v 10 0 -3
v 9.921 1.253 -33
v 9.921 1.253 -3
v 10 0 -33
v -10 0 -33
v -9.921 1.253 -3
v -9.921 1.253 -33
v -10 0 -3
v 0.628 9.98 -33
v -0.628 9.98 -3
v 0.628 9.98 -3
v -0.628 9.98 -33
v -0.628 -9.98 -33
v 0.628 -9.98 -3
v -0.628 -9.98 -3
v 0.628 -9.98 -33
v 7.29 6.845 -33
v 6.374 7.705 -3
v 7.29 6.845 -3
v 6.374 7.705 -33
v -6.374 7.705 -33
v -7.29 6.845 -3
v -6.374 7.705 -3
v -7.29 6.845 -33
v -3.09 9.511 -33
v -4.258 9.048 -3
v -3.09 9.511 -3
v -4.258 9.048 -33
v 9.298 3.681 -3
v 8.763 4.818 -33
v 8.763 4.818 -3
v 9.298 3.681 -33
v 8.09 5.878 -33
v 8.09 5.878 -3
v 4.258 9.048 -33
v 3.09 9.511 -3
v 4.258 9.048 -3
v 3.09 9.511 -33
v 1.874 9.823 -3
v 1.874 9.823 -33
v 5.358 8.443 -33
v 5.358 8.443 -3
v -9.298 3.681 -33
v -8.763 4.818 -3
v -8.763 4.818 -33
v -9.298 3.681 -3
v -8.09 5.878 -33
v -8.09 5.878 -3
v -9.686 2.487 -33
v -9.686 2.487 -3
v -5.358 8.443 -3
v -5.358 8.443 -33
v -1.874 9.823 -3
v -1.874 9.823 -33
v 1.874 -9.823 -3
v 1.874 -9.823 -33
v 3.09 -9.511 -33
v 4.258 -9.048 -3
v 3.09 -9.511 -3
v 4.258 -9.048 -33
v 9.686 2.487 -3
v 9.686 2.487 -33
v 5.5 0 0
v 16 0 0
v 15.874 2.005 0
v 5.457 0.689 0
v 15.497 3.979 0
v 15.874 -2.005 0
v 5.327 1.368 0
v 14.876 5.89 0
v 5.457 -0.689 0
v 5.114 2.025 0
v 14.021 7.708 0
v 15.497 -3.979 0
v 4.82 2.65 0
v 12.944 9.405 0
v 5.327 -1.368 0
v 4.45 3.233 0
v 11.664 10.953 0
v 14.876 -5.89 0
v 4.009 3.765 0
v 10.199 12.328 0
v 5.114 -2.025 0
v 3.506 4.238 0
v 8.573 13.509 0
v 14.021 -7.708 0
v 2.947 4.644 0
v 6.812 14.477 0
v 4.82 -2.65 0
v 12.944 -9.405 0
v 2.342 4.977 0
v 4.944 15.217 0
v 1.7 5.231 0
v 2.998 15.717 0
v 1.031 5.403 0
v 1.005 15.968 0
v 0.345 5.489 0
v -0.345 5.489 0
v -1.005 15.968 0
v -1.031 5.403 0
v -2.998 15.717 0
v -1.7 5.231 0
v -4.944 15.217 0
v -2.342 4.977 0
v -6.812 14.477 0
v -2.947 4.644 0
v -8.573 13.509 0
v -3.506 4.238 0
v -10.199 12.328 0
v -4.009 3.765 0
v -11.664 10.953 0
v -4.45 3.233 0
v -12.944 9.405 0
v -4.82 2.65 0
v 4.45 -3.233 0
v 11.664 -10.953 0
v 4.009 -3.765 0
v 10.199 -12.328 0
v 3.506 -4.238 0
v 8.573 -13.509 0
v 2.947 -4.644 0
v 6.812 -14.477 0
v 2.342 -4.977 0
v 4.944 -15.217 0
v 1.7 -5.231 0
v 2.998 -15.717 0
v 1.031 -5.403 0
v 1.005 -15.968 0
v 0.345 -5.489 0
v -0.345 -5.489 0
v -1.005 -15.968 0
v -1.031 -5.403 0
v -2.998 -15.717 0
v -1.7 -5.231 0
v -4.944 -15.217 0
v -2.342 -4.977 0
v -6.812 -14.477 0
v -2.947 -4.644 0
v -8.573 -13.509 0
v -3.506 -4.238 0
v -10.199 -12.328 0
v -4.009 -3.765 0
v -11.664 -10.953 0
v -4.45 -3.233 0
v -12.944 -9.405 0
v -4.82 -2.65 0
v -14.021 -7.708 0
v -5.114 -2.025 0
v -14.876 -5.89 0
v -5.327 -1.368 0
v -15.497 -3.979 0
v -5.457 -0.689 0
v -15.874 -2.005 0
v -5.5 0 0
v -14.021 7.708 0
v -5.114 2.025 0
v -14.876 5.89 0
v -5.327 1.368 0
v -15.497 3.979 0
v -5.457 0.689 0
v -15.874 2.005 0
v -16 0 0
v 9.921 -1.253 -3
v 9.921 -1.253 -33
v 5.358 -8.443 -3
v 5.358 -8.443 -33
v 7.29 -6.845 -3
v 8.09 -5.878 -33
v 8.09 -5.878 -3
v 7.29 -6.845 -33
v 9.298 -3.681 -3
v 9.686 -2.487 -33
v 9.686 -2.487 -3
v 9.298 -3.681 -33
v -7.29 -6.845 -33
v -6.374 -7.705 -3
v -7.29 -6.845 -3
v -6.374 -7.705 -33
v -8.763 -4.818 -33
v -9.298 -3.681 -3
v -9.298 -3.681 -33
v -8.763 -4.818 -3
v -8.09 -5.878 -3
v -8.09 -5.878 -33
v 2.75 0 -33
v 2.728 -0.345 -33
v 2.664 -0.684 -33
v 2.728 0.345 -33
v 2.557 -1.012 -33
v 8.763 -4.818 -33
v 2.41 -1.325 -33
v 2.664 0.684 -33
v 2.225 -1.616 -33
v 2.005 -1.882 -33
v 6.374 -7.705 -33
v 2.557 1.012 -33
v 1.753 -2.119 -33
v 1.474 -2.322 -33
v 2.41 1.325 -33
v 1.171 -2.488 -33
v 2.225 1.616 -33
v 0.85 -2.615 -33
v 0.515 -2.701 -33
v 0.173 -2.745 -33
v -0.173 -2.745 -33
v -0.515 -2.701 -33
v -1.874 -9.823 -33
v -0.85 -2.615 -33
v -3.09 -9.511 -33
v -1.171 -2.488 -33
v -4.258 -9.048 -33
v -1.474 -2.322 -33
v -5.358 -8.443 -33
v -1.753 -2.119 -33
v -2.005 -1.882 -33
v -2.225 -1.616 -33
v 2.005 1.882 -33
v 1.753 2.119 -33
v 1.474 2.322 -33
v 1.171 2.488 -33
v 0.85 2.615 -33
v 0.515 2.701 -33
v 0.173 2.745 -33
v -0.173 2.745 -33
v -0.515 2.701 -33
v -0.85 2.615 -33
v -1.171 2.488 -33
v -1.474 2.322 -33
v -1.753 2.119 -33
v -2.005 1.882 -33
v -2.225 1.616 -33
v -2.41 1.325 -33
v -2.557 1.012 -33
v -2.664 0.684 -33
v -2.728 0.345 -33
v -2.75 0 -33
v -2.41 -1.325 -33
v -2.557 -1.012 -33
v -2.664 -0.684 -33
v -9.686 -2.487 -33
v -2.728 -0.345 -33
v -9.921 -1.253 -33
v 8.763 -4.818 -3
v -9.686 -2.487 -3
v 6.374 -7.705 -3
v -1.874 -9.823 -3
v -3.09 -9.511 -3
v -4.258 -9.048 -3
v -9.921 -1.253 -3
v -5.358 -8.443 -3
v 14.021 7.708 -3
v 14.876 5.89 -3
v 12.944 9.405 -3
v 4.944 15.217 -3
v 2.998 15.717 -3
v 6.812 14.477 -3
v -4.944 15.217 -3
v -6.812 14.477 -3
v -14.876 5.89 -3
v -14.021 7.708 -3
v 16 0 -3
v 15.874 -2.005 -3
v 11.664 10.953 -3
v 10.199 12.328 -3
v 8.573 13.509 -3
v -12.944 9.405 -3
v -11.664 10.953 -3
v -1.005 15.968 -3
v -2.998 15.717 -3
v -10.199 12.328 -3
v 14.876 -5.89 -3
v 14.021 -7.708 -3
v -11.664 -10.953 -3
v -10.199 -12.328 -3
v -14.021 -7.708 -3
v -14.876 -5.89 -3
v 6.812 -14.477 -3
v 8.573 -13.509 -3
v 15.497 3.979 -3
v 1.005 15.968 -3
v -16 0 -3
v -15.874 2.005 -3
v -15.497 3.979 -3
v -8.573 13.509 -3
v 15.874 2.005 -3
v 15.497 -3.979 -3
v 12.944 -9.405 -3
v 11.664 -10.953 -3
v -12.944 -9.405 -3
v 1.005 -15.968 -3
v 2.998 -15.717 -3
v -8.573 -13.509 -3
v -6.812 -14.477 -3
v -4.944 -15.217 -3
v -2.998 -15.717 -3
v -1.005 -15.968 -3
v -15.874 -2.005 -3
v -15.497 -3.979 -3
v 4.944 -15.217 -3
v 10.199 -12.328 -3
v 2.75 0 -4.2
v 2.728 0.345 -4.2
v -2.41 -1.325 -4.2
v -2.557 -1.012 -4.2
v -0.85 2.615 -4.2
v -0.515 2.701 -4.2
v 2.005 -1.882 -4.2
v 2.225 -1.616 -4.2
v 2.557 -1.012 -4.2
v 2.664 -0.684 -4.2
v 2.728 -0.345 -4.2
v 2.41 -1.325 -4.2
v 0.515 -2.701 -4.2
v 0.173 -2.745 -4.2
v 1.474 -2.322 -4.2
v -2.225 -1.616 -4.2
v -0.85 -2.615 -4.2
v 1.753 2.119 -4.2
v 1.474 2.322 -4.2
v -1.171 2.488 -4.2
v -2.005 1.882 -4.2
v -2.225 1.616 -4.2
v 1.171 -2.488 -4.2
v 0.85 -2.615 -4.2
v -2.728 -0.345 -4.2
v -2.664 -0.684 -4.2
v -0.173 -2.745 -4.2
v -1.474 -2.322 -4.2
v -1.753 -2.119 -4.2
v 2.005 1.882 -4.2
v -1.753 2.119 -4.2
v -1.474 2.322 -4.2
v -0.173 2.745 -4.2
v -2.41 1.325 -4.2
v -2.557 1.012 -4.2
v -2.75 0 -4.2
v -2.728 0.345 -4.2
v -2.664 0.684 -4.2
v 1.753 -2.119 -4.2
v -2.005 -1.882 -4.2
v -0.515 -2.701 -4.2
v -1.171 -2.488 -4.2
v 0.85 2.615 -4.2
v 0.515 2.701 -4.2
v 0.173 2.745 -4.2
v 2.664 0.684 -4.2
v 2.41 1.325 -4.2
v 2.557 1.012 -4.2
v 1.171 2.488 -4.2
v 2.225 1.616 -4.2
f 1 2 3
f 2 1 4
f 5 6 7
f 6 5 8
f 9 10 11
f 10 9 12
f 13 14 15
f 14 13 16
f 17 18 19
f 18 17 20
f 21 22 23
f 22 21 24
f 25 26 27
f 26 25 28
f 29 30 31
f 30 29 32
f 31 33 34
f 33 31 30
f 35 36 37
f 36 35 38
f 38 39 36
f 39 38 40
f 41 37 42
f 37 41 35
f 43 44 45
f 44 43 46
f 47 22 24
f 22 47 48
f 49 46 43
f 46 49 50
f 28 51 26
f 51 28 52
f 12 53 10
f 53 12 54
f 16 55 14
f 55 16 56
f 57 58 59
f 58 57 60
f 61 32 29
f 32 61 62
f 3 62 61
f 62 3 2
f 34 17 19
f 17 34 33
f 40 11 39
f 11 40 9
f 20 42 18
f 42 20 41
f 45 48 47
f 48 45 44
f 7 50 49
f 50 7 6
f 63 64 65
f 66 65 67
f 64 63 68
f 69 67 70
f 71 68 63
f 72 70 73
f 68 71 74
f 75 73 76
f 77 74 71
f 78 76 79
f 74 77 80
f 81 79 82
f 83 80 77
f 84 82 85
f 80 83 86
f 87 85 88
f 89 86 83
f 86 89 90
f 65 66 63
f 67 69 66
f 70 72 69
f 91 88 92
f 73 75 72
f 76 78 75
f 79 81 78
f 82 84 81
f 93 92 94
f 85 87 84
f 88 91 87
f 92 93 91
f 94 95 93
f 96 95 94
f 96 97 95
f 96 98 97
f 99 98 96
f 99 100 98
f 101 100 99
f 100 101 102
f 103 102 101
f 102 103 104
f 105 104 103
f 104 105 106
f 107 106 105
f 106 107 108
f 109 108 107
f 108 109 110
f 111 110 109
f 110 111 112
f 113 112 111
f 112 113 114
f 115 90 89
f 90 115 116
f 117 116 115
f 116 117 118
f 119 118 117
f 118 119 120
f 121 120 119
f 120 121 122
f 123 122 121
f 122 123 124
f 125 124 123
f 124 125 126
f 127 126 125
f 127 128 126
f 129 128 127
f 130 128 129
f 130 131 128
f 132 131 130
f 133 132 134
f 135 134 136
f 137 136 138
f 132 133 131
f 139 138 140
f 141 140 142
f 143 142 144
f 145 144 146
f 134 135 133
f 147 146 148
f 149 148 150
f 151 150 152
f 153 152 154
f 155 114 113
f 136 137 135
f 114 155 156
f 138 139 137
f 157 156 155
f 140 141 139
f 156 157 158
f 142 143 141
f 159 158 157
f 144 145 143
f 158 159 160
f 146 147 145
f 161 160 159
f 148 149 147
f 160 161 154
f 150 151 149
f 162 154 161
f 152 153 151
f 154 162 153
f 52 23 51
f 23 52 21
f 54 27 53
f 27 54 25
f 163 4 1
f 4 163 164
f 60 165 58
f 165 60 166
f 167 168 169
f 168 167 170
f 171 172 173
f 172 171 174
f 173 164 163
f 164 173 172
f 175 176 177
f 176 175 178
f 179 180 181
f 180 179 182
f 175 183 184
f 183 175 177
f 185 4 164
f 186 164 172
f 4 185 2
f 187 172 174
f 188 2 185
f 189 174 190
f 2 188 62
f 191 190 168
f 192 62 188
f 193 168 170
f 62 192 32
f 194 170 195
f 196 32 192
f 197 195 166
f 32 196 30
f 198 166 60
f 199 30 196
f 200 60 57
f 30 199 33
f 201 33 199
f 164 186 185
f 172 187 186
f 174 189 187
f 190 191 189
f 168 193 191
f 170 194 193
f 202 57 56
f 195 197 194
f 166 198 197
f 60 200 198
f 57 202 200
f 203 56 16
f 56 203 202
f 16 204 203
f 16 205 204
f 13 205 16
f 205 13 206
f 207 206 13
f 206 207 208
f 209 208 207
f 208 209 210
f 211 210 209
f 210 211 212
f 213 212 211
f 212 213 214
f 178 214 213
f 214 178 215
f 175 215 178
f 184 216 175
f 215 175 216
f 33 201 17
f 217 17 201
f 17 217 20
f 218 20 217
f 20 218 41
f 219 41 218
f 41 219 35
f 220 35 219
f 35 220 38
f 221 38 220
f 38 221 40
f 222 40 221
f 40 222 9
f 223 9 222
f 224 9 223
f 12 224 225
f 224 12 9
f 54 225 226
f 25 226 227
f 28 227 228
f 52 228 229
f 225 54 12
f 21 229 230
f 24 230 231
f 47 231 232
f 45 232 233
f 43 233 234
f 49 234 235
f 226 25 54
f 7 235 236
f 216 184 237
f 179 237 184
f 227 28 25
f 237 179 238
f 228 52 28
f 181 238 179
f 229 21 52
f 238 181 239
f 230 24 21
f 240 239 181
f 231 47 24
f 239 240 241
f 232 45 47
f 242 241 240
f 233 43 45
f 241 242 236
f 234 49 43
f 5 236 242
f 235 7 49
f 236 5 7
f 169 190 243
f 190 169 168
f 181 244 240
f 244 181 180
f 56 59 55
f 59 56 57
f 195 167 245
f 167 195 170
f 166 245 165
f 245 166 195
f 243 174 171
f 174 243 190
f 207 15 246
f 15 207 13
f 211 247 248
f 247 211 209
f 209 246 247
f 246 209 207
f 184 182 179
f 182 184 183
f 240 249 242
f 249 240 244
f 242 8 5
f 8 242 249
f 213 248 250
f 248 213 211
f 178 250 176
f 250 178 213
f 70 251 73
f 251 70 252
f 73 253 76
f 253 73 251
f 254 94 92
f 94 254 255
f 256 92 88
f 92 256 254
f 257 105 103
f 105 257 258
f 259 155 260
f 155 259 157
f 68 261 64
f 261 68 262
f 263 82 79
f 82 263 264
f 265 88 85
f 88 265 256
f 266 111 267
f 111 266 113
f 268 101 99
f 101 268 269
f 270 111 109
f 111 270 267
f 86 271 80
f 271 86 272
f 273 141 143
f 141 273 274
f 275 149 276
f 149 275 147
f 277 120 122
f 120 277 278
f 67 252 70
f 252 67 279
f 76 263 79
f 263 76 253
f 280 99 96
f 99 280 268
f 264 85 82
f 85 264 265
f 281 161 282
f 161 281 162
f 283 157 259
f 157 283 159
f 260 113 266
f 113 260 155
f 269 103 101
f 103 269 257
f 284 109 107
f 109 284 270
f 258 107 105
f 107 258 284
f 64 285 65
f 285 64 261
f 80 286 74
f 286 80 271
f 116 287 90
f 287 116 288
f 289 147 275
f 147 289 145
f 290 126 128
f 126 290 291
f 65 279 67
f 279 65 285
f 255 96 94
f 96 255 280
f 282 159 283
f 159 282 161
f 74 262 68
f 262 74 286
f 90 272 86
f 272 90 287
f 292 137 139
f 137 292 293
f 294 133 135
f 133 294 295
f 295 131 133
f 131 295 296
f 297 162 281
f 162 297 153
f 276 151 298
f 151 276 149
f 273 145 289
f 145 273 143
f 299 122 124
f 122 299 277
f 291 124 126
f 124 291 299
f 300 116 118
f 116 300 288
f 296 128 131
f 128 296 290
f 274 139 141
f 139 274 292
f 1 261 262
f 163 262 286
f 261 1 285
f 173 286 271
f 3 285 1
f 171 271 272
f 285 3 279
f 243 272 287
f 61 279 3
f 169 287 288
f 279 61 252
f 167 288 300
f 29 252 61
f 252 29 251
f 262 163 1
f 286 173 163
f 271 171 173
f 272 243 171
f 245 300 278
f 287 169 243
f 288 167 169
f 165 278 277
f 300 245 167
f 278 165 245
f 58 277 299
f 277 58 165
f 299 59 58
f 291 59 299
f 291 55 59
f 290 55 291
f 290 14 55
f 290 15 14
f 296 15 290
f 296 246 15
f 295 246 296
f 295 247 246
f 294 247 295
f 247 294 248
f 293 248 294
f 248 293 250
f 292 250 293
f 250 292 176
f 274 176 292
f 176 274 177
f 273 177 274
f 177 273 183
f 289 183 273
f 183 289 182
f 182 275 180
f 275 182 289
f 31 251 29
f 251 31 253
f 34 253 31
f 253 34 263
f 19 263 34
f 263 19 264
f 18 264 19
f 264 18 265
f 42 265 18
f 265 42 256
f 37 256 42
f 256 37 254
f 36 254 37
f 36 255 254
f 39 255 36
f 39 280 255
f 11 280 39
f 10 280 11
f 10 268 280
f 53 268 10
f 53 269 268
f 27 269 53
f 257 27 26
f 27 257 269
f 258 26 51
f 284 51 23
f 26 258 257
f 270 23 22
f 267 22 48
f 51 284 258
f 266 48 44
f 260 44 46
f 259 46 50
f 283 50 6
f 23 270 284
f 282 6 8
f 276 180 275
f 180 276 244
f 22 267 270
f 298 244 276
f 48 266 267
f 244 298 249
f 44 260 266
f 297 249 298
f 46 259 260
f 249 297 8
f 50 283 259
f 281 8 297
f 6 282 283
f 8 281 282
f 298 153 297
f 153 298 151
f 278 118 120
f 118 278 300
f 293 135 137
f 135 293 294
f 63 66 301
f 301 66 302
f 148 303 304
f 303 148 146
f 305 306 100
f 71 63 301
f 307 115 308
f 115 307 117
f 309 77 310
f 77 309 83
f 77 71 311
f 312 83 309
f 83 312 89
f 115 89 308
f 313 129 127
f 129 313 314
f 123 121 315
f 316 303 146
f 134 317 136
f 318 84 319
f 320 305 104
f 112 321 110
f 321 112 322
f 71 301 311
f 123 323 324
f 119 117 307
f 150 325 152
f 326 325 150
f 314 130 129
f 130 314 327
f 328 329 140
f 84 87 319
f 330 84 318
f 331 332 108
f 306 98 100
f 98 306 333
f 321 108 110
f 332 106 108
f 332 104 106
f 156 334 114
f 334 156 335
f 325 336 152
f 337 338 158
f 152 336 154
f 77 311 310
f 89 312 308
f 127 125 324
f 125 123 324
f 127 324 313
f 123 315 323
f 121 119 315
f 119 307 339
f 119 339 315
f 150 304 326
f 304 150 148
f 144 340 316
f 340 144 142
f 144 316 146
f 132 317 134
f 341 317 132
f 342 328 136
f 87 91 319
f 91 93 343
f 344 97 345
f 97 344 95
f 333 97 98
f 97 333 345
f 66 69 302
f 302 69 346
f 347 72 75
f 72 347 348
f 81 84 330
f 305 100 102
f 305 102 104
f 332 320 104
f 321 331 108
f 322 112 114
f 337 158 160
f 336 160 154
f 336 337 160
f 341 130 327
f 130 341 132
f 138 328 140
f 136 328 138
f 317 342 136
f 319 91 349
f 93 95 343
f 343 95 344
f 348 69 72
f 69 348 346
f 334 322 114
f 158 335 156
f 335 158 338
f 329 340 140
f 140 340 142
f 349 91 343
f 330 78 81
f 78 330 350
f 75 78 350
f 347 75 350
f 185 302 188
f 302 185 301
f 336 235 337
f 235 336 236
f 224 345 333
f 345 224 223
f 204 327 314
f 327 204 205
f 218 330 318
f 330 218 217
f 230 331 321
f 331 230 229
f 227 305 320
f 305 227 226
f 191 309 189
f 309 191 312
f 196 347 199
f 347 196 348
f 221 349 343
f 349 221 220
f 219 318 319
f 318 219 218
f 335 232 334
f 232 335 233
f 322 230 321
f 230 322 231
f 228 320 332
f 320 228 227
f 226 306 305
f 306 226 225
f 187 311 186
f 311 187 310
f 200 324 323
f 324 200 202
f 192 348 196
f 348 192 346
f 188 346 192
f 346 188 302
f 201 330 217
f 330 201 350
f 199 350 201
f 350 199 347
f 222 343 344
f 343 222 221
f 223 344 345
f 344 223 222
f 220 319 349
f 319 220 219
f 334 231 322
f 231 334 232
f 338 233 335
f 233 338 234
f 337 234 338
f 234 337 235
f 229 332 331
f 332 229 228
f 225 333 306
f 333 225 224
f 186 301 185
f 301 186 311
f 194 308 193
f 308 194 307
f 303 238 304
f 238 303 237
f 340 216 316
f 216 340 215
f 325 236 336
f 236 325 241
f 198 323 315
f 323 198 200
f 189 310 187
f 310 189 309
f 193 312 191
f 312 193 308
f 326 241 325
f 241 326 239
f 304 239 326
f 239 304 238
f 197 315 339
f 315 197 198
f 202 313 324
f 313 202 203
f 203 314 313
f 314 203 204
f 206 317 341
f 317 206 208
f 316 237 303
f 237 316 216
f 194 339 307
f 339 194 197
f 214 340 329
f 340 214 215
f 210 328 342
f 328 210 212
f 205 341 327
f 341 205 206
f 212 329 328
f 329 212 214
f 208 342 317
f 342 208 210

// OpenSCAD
$fn = 50;


difference() {
	union() {
		translate(v = [0, 0, -33.0000000000]) {
			cylinder(h = 33, r = 10.0000000000);
		}
		translate(v = [0, 0, -3.0000000000]) {
			cylinder(h = 3, r = 16.0000000000);
		}
	}
	union() {
		translate(v = [0, 0, 0]) {
			rotate(a = [0, 0, 0]) {
				difference() {
					union() {
						#translate(v = [0, 0, -33.0000000000]) {
							cylinder(h = 33, r = 2.2500000000);
						}
						#translate(v = [0, 0, -4.2000000000]) {
							cylinder(h = 4.2000000000, r1 = 2.7500000000, r2 = 5.5000000000);
						}
						#translate(v = [0, 0, -33.0000000000]) {
							cylinder(h = 33, r = 2.7500000000);
						}
						#translate(v = [0, 0, -33.0000000000]) {
							cylinder(h = 33, r = 2.2500000000);
						}
					}
					union();
				}
			}
		}
	}
}
